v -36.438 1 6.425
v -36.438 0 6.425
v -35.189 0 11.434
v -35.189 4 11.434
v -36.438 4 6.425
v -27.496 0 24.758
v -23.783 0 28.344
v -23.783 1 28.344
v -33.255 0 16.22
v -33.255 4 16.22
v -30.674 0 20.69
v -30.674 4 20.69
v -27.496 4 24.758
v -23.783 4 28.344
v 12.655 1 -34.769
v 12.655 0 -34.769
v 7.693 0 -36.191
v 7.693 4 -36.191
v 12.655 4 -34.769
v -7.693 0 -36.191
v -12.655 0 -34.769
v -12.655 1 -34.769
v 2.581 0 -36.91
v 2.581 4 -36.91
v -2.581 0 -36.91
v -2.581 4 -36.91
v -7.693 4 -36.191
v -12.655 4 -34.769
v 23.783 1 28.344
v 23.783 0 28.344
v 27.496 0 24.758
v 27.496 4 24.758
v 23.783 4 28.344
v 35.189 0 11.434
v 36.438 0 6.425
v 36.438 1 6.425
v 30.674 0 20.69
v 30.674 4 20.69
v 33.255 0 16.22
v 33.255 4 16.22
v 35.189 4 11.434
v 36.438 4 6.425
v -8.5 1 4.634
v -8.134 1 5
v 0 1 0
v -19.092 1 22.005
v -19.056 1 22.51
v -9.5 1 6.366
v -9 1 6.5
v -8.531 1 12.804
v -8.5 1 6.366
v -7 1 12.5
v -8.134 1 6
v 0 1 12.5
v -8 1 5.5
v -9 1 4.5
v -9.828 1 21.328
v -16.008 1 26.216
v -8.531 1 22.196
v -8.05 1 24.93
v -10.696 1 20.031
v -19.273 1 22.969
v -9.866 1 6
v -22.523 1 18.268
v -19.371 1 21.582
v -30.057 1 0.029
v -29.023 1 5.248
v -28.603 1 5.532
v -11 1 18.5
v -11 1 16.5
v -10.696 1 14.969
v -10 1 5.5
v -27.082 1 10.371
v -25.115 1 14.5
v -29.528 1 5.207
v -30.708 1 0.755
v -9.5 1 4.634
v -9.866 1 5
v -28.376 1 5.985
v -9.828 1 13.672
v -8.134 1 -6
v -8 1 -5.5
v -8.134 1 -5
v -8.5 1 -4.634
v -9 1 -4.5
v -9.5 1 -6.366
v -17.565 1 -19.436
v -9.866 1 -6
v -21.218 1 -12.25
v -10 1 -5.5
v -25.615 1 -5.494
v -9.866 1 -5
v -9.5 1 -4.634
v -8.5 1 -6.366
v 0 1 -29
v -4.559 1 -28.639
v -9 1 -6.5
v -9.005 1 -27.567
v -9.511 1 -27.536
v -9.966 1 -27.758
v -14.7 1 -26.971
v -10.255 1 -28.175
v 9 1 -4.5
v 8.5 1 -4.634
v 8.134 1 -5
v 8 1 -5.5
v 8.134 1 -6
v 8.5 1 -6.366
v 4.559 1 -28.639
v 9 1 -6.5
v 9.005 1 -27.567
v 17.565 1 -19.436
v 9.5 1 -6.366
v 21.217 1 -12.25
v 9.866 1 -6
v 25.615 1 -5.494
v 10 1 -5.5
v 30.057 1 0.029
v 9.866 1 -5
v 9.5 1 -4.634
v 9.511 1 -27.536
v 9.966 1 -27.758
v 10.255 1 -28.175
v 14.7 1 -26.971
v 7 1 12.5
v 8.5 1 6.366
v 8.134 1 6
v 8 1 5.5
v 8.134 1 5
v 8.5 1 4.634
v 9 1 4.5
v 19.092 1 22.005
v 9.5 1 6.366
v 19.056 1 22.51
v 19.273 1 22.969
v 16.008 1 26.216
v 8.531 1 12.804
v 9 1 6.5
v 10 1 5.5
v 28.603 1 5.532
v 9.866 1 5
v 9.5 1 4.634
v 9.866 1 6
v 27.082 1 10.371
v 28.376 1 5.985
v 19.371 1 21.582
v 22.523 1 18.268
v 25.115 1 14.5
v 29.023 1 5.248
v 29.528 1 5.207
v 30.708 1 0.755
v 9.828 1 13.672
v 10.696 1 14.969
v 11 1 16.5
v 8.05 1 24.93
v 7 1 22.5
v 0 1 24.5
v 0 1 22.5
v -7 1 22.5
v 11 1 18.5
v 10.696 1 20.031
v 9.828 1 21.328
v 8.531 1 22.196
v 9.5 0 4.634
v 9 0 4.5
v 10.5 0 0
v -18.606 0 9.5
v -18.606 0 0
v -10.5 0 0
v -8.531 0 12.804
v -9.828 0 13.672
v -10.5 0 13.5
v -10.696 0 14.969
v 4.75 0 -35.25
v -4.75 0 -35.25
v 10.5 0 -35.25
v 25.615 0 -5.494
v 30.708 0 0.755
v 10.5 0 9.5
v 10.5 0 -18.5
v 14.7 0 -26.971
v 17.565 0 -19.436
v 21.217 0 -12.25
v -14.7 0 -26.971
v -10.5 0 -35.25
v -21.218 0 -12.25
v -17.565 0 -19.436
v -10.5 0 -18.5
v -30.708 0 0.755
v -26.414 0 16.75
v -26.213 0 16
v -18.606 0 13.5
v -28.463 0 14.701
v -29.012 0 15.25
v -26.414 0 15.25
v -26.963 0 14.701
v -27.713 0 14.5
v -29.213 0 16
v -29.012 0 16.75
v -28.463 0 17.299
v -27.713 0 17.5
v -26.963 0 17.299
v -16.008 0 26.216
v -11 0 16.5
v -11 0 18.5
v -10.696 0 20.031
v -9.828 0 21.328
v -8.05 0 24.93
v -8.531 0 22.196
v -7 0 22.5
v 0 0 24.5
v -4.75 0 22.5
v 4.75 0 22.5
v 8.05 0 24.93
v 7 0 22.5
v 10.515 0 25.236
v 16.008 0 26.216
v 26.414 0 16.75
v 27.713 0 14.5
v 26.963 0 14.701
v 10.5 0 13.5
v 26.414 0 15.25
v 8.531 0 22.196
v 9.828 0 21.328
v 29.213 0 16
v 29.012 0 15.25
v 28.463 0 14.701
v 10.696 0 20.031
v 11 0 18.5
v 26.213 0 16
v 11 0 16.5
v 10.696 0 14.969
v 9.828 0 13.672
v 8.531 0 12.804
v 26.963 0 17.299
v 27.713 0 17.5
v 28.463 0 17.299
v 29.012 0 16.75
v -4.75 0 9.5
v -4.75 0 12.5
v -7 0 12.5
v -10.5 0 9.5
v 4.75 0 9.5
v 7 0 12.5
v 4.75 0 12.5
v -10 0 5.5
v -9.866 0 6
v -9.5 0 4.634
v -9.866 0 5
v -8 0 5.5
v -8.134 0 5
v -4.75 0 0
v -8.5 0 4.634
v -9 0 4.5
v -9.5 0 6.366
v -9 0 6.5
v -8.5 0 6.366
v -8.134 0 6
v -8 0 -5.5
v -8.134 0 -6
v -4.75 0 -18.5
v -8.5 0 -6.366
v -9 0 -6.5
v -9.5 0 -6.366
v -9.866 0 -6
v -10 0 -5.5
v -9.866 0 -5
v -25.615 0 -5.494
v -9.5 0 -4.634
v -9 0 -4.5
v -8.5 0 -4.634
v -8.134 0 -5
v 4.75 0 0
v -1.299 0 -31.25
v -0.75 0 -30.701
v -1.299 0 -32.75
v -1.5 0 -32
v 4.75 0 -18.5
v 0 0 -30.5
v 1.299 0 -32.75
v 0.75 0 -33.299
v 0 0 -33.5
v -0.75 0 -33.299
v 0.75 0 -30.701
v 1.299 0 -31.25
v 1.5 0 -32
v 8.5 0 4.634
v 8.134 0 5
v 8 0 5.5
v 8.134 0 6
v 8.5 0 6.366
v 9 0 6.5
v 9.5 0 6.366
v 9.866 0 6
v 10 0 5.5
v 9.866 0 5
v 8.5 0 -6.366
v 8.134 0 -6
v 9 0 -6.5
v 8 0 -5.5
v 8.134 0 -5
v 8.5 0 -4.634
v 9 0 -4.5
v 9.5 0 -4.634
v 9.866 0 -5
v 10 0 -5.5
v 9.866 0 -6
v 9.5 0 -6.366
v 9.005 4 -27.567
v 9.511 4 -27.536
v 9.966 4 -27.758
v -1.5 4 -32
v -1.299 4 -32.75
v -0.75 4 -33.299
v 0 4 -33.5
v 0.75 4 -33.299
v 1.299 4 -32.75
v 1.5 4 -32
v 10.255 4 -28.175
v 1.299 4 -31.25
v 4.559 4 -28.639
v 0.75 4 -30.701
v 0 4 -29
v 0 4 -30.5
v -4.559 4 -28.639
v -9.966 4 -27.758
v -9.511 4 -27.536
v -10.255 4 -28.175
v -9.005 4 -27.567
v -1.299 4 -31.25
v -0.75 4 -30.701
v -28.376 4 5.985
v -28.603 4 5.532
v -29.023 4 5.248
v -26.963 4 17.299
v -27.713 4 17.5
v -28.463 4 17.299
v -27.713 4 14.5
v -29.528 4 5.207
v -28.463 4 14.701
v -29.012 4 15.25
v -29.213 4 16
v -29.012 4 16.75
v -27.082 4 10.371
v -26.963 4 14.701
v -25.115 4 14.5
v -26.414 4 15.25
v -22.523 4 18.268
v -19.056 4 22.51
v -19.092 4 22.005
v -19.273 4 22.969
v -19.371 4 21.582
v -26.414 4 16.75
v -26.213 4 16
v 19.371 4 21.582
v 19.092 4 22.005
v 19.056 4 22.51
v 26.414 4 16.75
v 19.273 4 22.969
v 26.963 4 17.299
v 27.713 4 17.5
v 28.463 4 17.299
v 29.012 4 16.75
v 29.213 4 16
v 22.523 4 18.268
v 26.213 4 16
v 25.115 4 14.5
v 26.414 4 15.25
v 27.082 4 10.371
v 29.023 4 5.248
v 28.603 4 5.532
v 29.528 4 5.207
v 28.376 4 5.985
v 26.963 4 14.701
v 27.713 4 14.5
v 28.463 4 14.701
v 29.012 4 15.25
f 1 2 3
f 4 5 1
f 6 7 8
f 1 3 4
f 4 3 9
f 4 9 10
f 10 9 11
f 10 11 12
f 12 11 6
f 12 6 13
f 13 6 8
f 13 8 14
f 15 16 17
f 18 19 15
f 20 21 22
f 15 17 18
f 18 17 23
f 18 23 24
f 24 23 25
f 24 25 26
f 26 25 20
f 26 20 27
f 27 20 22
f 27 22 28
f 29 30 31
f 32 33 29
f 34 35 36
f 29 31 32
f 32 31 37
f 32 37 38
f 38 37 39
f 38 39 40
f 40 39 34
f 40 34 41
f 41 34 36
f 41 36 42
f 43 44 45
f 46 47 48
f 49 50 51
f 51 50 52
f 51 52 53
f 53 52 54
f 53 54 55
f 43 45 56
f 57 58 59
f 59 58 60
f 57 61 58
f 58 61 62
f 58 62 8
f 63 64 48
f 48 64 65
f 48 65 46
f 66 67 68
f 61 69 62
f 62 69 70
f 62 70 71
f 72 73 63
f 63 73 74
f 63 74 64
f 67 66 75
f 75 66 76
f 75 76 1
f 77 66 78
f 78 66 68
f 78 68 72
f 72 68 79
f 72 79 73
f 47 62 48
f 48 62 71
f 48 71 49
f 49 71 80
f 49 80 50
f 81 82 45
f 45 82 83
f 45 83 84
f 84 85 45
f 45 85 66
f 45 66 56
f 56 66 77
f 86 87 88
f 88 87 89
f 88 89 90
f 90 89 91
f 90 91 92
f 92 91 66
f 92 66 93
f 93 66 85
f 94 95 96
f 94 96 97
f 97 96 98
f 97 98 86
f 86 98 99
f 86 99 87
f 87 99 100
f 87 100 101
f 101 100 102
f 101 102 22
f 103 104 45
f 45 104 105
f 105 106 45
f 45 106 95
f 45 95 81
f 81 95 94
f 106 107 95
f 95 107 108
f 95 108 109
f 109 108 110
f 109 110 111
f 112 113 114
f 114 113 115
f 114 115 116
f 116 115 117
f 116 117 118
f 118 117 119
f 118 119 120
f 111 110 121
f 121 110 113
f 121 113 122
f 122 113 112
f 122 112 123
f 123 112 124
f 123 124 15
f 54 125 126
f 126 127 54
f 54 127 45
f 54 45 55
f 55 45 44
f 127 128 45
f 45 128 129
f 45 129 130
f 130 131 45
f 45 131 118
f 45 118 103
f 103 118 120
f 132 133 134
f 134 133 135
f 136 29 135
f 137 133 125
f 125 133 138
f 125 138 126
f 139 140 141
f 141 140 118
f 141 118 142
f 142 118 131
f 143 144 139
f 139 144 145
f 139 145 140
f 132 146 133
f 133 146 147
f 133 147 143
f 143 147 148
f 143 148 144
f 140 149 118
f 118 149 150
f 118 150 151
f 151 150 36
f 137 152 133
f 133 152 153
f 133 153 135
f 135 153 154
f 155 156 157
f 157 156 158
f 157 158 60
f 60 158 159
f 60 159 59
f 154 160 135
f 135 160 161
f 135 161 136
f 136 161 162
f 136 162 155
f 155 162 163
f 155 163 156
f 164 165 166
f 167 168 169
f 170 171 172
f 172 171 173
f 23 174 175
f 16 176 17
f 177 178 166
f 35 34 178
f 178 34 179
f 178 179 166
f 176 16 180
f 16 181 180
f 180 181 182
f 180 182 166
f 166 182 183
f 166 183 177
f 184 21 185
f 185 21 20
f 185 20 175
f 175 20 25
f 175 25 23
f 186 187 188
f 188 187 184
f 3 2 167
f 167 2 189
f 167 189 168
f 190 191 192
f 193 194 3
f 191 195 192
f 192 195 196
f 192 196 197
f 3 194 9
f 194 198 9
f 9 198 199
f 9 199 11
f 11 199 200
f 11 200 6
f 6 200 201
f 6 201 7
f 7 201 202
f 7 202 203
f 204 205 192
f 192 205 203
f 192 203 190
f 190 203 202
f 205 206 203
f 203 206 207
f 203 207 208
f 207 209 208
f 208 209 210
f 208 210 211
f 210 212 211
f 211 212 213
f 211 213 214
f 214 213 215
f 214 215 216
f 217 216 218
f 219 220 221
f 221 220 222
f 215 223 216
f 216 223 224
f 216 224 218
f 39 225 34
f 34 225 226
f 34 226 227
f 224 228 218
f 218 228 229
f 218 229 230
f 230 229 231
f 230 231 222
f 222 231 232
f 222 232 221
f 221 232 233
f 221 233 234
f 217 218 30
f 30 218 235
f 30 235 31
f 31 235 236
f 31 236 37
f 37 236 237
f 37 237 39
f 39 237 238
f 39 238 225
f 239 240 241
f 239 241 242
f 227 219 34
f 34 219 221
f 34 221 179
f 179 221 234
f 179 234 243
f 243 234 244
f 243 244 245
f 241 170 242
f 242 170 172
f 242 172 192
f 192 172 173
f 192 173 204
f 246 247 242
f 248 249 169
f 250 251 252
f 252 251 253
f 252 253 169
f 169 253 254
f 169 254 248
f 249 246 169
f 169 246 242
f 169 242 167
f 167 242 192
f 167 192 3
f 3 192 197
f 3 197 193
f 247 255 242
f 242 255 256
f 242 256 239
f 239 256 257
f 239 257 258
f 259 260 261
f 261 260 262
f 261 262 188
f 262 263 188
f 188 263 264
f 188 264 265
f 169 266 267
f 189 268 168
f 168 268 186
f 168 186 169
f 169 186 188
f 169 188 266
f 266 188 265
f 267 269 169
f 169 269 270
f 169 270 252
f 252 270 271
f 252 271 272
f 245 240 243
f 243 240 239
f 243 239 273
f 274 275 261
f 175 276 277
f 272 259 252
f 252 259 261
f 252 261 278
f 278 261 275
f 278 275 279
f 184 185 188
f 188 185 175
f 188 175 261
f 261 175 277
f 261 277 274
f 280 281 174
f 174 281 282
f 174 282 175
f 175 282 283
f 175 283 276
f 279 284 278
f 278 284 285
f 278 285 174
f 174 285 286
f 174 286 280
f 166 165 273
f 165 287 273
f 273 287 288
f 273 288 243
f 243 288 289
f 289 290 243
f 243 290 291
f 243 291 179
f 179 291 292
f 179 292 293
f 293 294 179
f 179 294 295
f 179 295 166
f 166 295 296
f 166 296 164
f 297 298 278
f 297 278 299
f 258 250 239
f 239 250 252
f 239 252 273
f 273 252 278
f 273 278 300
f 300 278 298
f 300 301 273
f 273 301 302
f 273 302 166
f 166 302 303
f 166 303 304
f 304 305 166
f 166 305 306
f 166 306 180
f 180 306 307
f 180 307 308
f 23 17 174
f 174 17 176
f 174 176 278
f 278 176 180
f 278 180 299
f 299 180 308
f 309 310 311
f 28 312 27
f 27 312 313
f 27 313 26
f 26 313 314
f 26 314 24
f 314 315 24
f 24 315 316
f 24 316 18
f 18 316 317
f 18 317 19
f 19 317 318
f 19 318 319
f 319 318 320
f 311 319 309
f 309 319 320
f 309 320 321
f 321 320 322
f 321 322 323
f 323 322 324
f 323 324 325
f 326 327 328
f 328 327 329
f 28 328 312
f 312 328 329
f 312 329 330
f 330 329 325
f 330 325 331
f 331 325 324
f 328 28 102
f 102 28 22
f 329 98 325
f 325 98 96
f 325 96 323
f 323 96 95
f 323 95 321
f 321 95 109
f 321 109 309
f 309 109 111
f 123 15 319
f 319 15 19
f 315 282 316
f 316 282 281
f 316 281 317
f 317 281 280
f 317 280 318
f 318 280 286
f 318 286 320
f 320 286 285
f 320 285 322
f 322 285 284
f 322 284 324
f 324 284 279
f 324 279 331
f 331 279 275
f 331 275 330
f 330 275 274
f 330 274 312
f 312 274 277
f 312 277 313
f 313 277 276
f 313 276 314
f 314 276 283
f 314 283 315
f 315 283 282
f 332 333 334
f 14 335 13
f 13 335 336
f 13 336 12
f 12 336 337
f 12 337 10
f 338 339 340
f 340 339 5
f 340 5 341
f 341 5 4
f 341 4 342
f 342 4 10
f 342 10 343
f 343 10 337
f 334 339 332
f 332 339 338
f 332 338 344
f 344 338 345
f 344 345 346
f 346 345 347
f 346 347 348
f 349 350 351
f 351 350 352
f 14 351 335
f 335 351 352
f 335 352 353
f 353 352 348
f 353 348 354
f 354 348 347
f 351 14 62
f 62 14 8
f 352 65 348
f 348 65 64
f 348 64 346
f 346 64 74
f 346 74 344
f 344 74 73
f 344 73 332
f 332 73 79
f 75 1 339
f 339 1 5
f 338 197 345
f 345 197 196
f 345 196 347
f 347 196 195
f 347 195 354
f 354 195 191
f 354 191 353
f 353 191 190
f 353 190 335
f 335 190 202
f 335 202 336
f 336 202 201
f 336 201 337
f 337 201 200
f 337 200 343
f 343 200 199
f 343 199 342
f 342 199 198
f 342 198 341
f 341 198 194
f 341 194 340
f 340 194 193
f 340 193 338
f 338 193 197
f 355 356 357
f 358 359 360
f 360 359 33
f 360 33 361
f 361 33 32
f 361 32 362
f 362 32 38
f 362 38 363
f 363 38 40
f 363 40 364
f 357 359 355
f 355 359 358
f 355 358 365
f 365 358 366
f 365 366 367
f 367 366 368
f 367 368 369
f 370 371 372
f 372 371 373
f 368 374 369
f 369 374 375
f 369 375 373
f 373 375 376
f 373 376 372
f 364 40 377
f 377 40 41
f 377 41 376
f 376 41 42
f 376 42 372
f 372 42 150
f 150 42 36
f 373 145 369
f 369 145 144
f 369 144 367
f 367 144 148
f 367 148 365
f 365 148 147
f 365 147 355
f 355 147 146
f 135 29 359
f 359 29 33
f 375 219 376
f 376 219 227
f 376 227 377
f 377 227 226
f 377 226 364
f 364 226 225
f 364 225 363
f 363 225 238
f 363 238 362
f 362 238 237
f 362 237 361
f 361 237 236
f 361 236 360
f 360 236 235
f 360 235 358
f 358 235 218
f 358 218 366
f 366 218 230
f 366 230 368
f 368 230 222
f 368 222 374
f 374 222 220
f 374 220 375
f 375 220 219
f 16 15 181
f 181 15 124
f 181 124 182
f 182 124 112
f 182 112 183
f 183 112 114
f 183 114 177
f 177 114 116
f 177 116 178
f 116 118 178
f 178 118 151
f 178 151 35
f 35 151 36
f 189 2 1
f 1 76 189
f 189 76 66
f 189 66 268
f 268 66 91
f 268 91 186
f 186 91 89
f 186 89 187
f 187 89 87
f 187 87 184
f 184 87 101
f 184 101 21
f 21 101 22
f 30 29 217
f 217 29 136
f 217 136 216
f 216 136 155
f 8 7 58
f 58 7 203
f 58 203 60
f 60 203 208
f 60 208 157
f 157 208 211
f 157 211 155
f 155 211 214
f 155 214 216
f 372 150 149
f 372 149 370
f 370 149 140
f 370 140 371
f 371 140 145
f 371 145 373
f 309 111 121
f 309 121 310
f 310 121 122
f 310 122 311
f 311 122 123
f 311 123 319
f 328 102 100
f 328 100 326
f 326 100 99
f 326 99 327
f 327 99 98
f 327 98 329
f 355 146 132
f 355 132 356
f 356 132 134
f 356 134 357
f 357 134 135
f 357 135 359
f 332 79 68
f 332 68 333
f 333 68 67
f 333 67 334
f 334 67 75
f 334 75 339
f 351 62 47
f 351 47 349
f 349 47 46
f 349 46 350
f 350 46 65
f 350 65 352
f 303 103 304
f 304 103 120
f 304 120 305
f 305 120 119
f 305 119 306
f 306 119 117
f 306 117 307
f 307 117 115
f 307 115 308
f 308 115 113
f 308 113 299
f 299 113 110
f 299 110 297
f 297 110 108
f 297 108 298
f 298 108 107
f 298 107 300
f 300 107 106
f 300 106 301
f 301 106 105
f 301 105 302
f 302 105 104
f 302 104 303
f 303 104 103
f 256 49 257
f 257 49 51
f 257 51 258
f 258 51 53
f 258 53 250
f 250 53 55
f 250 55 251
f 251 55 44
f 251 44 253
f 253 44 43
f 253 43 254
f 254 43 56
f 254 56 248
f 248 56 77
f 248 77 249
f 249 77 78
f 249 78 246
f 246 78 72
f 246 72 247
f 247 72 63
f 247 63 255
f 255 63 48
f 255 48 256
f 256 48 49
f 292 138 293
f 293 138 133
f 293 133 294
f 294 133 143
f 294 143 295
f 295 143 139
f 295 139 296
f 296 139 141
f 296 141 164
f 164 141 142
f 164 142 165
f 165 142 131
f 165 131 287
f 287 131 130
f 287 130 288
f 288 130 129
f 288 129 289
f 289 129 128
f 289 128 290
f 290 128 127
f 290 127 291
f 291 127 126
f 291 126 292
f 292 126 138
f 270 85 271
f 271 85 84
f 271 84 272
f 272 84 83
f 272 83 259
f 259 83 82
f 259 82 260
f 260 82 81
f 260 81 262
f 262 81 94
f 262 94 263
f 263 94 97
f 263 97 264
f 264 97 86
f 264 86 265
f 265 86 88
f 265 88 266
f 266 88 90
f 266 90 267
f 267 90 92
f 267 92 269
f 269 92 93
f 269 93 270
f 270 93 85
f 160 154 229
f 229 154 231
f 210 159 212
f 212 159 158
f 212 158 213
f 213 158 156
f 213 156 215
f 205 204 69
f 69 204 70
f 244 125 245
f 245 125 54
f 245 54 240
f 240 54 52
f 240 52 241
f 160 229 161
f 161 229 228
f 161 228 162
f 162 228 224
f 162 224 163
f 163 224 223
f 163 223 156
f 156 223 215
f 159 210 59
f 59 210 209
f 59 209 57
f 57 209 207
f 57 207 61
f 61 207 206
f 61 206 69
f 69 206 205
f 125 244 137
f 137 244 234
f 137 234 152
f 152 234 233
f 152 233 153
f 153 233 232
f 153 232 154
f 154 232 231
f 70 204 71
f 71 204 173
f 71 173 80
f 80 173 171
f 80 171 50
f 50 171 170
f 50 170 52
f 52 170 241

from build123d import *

# Parameters (mm, degrees)
SKETCH1_R           = 37
BOSS_EXTRUDE1_DEPTH = 1
SKETCH2_R           = 1.5
BOSS_EXTRUDE2_DEPTH = 3
SKETCH16_R          = 1.5
CUT_EXTRUDE9_DEPTH  = 5
CIRPATTERN1_COUNT   = 3
SKETCH5_R           = 75.500139874
CUT_EXTRUDE3_DEPTH  = 2
CIRPATTERN2_COUNT   = 3
FILLET2_R           = 1
SKETCH18_R          = 1
CUT_EXTRUDE10_DEPTH = 2
SKETCH20_W          = 22
SKETCH20_H          = 10
CUT_EXTRUDE12_DEPTH = 2
FILLET3_R           = 4


with BuildPart() as part:
    # Sketch1 → Boss-Extrude1 (new body)
    with BuildSketch(Plane(origin=(0, 0, 0), x_dir=(1, 0, 0), z_dir=(0, 1, 0))):
        Circle(SKETCH1_R)
    extrude(amount=BOSS_EXTRUDE1_DEPTH)

    # Sketch2 → Boss-Extrude2 (add)
    with BuildSketch(Plane(origin=(0, 1, 0), x_dir=(1, 0, 0), z_dir=(0, 1, 0))):
        with BuildLine():
            Line((-12.654745303, 34.768626969), (-9.918584156, 27.251086003))
            ThreePointArc((-9.918584156, 27.251086003), (0, 29), (9.918584156, 27.251086003))
            Line((9.918584156, 27.251086003), (12.654745303, 34.768626969))
            ThreePointArc((12.654745303, 34.768626969), (0, 37), (-12.654745303, 34.768626969))
        make_face()
        with Locations((0, 32)):
            Circle(SKETCH2_R, mode=Mode.SUBTRACT)
    boss_extrude2 = extrude(amount=BOSS_EXTRUDE2_DEPTH)

    # Sketch16 → Cut-Extrude9 (cut, through all)
    with BuildSketch(Plane(origin=(0, 4, 0), x_dir=(1, 0, 0), z_dir=(0, 1, 0))):
        with Locations((0, 32)):
            Circle(SKETCH16_R)
    cut_extrude9 = extrude(amount=-CUT_EXTRUDE9_DEPTH, mode=Mode.SUBTRACT)

    # CirPattern1: Boss-Extrude2, Cut-Extrude9 ×3 about axis
    cirpattern1_axis = Axis((0, 0, 0), (0, 1, 0))
    for i in range(1, CIRPATTERN1_COUNT):
        add(boss_extrude2.rotate(cirpattern1_axis, i * 360 / CIRPATTERN1_COUNT))
        add(cut_extrude9.rotate(cirpattern1_axis, i * 360 / CIRPATTERN1_COUNT), mode=Mode.SUBTRACT)

    # Sketch5 → Cut-Extrude3 (cut, through all)
    with BuildSketch(Plane(origin=(0, 1, 0), x_dir=(1, 0, 0), z_dir=(0, 1, 0))):
        with Locations((86.602540378, 50)):
            Circle(SKETCH5_R)
    cut_extrude3 = extrude(amount=-CUT_EXTRUDE3_DEPTH, mode=Mode.SUBTRACT)

    # CirPattern2: Cut-Extrude3 ×3 about axis
    cirpattern2_axis = Axis((0, 0, 0), (0, 1, 0))
    for i in range(1, CIRPATTERN2_COUNT):
        add(cut_extrude3.rotate(cirpattern2_axis, i * 360 / CIRPATTERN2_COUNT), mode=Mode.SUBTRACT)

    # Fillet2
    fillet2_edges = [part.edges().sort_by_distance(p)[0] for p in [
        (-9.918584156, 2.5, -27.251086003),
        (9.918584156, 2.5, -27.251086003),
        (-18.640840681, 2.5, 22.21528885),
        (-28.559424837, 2.5, 5.035797152),
        (28.559424837, 2.5, 5.035797152),
        (18.640840681, 2.5, 22.21528885),
    ]]
    fillet(fillet2_edges, radius=FILLET2_R)

    # Sketch18 → Cut-Extrude10 (cut, through all)
    with BuildSketch(Plane(origin=(0, 1, 0), x_dir=(1, 0, 0), z_dir=(0, 1, 0))):
        with Locations((9, 5.5)):
            Circle(SKETCH18_R)
        with Locations((-9, 5.5)):
            Circle(SKETCH18_R)
        with Locations((9, -5.5)):
            Circle(SKETCH18_R)
        with Locations((-9, -5.5)):
            Circle(SKETCH18_R)
    extrude(amount=-CUT_EXTRUDE10_DEPTH, mode=Mode.SUBTRACT)

    # Sketch20 → Cut-Extrude12 (cut, through all)
    with BuildSketch(Plane(origin=(0, 1, 0), x_dir=(1, 0, 0), z_dir=(0, 1, 0))):
        with Locations((0, -17.5)):
            Rectangle(SKETCH20_W, SKETCH20_H)
    extrude(amount=-CUT_EXTRUDE12_DEPTH, mode=Mode.SUBTRACT)

    # Fillet3
    fillet3_edges = [part.edges().sort_by_distance(p)[0] for p in [
        (11, 0.5, 12.5),
        (11, 0.5, 22.5),
        (-11, 0.5, 22.5),
        (-11, 0.5, 12.5),
    ]]
    fillet(fillet3_edges, radius=FILLET3_R)


solid = part.part
